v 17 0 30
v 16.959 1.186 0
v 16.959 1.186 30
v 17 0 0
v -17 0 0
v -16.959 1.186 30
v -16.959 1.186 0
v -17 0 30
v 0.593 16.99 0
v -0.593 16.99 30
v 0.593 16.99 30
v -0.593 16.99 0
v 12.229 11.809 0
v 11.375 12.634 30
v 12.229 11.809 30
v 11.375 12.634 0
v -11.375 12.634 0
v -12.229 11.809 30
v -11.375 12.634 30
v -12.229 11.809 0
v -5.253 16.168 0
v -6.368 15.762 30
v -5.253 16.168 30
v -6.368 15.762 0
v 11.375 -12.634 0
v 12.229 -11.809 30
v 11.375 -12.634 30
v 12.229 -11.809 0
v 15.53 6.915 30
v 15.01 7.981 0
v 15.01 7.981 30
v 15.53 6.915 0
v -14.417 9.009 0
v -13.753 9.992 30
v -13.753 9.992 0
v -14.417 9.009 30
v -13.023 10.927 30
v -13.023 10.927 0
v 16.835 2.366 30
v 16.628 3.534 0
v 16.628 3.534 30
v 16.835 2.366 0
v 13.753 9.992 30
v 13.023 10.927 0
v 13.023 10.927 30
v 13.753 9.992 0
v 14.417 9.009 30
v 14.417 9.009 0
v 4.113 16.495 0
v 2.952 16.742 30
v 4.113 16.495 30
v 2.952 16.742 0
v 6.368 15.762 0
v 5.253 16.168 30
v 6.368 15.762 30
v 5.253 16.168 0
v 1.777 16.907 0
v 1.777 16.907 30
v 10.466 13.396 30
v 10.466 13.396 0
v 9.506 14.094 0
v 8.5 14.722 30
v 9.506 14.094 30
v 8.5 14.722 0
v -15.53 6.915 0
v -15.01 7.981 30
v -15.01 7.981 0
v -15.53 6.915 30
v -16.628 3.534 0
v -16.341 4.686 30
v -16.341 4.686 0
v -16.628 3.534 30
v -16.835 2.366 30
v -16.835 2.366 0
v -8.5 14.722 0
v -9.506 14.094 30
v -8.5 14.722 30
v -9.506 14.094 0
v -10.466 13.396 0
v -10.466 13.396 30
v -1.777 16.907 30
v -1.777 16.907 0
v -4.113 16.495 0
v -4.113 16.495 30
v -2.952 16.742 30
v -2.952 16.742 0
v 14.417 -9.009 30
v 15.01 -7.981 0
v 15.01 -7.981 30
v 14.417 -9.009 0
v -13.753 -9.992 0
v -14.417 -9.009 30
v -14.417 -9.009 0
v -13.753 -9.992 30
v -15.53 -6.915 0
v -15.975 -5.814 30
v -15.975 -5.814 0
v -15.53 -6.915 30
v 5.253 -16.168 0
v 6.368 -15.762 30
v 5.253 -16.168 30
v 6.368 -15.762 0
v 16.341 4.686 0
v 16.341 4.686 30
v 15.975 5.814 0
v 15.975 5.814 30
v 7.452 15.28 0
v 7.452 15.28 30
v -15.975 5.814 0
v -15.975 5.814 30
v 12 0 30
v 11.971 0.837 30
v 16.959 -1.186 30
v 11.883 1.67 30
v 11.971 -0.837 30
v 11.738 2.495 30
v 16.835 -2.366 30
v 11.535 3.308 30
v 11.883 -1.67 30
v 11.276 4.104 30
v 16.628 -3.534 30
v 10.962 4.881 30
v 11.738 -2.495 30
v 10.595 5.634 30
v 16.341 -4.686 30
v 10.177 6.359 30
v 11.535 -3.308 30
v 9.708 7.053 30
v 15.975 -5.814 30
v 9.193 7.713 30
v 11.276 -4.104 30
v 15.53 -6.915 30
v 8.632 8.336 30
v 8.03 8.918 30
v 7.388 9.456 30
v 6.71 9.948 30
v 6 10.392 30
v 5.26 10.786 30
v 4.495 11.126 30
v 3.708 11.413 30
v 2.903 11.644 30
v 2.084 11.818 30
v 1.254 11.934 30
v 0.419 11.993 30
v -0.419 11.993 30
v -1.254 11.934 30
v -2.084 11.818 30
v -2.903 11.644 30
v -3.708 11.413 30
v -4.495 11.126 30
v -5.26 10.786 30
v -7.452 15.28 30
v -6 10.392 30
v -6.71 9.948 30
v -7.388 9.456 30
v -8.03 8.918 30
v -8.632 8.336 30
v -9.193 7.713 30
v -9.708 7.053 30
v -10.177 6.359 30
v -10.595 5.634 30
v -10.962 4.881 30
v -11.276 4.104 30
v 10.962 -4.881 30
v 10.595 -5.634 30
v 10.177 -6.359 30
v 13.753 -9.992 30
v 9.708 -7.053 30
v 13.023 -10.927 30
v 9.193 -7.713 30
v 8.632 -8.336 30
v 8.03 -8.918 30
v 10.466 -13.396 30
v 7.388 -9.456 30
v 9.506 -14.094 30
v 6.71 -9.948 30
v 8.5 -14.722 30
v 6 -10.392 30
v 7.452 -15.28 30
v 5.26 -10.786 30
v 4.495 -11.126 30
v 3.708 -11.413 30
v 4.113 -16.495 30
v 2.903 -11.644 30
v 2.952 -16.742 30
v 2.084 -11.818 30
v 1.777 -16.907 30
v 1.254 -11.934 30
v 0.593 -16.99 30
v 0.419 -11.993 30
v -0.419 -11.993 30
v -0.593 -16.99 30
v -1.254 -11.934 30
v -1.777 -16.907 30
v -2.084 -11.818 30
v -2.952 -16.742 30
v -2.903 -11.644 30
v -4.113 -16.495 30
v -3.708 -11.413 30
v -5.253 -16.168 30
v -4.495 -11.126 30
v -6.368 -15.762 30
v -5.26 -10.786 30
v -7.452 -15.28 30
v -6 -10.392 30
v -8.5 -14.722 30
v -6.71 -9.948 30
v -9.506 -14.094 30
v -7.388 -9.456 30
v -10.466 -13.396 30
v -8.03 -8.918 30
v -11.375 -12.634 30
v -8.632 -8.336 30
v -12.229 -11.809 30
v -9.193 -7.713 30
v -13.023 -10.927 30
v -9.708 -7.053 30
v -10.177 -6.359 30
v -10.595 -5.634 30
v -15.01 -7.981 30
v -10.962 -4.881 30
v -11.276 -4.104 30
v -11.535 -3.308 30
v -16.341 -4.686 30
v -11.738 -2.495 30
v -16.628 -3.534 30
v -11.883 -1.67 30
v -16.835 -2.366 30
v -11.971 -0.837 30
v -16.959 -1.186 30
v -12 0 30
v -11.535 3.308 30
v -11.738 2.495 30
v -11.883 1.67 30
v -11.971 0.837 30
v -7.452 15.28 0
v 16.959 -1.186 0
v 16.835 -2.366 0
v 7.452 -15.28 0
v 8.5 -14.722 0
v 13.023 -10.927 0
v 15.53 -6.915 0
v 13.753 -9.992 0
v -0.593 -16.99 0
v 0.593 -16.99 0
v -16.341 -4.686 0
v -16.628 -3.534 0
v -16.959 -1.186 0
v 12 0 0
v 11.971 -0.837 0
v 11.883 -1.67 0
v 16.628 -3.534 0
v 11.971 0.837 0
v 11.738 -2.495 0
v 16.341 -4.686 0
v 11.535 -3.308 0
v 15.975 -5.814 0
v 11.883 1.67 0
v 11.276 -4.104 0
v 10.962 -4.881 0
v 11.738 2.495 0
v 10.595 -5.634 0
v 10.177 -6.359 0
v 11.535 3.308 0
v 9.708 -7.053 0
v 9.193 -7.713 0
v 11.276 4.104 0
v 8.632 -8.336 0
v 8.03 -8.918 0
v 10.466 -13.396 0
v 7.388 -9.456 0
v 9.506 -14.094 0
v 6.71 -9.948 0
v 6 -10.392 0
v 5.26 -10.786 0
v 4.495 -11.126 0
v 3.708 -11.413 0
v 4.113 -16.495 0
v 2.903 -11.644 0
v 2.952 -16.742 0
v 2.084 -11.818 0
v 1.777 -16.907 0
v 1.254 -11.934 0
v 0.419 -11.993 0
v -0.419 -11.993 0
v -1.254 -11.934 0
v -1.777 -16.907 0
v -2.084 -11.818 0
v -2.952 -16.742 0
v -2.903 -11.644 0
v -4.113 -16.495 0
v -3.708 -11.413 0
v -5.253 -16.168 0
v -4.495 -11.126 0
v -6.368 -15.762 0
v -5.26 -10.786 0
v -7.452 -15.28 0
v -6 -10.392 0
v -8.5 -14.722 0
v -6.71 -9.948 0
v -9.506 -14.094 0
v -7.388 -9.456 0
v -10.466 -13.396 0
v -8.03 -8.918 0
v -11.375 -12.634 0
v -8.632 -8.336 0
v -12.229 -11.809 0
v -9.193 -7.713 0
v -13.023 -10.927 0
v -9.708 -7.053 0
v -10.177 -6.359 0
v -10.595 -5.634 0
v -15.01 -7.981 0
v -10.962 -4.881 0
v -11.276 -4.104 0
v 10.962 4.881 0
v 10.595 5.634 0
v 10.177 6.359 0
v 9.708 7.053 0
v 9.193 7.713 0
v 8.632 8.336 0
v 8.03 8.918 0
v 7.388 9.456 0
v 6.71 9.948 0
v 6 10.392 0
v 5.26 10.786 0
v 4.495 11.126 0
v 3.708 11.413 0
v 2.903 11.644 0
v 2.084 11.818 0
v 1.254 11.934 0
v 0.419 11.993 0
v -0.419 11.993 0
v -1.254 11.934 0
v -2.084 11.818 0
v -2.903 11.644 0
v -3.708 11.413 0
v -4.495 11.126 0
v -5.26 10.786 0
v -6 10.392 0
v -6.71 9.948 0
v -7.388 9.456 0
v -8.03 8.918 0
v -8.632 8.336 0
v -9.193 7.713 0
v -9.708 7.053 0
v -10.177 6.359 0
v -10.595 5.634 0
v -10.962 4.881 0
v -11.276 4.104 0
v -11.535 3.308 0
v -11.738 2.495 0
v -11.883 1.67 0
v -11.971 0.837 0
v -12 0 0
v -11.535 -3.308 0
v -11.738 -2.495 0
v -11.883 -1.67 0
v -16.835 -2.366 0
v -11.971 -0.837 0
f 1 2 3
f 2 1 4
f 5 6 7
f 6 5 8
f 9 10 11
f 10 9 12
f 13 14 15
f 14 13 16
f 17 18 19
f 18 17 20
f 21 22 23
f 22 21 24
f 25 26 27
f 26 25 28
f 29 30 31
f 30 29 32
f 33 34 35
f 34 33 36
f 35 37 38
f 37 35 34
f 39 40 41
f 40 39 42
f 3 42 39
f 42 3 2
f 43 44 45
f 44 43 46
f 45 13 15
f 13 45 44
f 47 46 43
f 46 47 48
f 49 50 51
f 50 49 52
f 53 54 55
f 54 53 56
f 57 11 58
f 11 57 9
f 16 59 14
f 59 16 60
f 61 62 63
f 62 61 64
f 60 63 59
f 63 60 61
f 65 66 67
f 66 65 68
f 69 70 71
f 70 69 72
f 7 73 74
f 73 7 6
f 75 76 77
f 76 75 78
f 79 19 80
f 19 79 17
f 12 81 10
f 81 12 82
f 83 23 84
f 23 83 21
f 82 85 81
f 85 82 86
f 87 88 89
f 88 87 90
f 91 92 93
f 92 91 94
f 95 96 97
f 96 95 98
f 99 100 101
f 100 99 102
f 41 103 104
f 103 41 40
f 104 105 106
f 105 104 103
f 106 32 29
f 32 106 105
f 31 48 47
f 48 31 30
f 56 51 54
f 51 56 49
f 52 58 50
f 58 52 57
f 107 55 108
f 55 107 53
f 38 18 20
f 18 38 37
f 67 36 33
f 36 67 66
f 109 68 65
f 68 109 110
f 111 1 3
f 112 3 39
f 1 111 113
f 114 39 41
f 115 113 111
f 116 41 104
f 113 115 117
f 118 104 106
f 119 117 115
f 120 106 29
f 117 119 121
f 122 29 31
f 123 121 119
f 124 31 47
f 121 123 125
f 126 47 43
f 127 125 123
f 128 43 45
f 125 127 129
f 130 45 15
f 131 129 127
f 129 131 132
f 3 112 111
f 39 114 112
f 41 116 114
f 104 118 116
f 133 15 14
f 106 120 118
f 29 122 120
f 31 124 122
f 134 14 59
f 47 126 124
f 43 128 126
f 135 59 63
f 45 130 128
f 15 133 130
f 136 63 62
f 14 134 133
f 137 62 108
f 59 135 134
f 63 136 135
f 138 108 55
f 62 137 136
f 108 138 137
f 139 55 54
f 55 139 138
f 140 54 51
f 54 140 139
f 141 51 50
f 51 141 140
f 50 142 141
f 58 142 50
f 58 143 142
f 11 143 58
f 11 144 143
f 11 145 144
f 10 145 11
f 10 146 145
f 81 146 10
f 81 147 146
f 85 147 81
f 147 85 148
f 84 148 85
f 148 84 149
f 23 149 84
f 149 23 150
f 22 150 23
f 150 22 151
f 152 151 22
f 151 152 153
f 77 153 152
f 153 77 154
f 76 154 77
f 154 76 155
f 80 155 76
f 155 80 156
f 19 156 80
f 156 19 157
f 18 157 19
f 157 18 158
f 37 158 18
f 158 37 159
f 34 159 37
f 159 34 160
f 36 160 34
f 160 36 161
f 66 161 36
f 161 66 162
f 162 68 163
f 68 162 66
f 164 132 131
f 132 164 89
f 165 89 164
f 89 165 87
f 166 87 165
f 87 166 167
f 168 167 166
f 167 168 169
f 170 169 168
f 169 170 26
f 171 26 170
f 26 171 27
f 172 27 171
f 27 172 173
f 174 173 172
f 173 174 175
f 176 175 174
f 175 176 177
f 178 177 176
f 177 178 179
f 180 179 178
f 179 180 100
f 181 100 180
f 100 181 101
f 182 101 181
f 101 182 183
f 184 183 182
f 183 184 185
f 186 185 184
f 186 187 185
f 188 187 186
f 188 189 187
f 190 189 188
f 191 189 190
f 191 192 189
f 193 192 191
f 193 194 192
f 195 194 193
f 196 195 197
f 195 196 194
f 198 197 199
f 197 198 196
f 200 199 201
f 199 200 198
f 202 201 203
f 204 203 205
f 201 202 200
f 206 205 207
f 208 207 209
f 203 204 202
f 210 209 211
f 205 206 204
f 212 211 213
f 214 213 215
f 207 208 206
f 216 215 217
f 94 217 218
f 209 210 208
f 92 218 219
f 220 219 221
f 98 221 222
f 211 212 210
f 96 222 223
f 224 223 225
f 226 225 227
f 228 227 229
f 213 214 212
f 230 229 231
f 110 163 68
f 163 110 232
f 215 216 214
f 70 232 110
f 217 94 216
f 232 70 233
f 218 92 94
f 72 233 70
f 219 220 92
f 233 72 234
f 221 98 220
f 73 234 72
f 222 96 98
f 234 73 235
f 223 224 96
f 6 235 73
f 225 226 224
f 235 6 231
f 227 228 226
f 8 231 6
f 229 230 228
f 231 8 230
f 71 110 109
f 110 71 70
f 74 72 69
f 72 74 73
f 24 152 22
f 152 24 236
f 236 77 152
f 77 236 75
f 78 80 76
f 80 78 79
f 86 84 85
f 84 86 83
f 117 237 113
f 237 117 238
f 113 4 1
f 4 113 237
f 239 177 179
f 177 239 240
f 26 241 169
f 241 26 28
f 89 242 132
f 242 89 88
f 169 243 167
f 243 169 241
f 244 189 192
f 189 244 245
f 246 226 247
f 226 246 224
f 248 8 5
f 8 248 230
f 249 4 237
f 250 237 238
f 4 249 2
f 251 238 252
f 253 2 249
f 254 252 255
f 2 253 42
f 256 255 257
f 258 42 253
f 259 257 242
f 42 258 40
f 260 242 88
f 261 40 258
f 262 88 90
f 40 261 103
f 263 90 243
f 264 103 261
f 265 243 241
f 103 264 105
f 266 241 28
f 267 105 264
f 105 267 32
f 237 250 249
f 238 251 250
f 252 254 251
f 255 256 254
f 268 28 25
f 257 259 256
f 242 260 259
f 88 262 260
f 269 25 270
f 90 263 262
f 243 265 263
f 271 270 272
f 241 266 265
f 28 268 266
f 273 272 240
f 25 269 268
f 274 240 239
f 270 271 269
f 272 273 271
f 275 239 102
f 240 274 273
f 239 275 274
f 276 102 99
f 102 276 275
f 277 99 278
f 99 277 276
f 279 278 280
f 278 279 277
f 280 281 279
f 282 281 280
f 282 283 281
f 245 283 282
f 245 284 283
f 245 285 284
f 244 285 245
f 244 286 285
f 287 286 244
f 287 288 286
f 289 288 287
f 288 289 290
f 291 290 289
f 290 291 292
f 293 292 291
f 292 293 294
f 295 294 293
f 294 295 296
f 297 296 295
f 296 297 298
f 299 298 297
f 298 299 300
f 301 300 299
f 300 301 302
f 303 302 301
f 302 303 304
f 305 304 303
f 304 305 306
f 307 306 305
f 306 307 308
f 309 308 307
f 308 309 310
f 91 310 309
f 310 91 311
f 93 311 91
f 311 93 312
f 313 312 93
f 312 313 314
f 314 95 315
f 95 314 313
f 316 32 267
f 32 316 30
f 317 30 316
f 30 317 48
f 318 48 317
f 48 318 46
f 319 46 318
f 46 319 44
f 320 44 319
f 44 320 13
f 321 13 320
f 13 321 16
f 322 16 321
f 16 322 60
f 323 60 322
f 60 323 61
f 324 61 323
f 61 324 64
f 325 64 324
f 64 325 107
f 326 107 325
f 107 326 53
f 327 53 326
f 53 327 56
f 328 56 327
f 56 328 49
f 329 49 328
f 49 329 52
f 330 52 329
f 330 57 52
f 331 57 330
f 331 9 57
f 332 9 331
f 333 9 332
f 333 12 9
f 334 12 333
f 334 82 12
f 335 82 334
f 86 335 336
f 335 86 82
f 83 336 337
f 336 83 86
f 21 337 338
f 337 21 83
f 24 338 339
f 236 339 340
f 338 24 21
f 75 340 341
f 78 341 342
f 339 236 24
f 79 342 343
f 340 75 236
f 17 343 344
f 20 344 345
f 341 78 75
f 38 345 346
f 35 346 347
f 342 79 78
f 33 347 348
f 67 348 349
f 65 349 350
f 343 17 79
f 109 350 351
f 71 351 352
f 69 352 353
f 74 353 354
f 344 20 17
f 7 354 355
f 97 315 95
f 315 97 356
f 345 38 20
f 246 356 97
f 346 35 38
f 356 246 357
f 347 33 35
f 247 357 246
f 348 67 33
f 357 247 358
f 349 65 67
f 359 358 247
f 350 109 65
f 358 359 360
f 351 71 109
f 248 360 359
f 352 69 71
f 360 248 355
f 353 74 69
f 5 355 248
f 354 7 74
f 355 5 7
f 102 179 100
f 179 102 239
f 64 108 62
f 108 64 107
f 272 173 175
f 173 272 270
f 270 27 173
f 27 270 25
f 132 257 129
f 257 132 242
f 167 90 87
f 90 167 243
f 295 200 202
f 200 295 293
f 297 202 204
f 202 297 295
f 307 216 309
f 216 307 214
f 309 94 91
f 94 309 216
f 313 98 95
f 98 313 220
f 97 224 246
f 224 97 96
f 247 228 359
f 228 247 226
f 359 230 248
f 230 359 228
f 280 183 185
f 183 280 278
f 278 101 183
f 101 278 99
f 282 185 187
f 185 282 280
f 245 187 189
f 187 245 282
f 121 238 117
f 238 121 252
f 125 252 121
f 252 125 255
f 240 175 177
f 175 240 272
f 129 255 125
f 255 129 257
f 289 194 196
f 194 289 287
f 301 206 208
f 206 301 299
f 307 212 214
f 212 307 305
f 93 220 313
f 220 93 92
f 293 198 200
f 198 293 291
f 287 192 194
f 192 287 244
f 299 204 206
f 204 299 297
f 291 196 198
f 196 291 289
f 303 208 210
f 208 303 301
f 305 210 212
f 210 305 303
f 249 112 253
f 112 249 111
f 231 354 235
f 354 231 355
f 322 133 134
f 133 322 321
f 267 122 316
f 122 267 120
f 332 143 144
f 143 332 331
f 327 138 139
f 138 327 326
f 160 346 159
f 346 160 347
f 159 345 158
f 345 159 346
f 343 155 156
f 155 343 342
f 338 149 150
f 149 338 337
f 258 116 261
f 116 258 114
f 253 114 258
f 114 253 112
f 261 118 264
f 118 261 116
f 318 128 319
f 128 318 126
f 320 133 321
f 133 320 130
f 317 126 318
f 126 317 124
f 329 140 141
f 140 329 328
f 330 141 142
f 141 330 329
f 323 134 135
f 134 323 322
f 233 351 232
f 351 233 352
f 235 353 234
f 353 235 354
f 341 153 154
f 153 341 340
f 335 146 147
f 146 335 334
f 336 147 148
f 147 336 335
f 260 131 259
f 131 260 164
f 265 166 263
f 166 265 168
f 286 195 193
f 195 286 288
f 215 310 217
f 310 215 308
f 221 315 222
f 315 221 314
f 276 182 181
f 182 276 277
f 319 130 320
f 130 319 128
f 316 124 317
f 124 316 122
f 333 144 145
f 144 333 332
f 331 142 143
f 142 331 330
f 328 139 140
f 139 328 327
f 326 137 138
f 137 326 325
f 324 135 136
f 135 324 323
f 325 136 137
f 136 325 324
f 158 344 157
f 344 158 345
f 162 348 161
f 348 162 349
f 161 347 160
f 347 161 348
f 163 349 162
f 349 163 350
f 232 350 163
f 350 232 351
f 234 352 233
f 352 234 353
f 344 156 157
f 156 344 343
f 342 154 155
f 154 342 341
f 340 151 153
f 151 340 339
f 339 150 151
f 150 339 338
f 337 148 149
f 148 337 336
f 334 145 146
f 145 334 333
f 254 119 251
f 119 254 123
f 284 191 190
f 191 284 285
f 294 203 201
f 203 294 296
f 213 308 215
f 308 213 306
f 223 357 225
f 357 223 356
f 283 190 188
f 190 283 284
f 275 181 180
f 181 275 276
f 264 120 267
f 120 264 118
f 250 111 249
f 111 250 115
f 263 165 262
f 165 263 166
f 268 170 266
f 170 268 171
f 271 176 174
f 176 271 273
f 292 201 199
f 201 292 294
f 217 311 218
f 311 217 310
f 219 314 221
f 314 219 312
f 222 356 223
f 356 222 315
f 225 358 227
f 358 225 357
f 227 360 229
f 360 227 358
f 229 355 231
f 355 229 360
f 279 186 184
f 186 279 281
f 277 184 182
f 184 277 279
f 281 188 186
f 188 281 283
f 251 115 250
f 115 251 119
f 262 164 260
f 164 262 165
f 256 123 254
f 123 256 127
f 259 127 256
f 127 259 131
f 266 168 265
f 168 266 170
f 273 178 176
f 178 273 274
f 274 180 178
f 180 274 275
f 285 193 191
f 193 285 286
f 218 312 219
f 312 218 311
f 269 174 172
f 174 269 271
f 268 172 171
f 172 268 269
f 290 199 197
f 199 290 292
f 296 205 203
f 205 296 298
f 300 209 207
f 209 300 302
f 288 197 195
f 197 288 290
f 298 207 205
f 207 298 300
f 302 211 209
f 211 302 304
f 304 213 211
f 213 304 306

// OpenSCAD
$fa = $preview ? 8 : 4;
$fs = $preview ? 3 : 0.25;

d_aussen = 25 -1;
l = 30;
thickness = 5;

difference()
{
	cylinder(d = d_aussen+2*thickness, h = l);
	cylinder(d = d_aussen, h = l+1);
}
